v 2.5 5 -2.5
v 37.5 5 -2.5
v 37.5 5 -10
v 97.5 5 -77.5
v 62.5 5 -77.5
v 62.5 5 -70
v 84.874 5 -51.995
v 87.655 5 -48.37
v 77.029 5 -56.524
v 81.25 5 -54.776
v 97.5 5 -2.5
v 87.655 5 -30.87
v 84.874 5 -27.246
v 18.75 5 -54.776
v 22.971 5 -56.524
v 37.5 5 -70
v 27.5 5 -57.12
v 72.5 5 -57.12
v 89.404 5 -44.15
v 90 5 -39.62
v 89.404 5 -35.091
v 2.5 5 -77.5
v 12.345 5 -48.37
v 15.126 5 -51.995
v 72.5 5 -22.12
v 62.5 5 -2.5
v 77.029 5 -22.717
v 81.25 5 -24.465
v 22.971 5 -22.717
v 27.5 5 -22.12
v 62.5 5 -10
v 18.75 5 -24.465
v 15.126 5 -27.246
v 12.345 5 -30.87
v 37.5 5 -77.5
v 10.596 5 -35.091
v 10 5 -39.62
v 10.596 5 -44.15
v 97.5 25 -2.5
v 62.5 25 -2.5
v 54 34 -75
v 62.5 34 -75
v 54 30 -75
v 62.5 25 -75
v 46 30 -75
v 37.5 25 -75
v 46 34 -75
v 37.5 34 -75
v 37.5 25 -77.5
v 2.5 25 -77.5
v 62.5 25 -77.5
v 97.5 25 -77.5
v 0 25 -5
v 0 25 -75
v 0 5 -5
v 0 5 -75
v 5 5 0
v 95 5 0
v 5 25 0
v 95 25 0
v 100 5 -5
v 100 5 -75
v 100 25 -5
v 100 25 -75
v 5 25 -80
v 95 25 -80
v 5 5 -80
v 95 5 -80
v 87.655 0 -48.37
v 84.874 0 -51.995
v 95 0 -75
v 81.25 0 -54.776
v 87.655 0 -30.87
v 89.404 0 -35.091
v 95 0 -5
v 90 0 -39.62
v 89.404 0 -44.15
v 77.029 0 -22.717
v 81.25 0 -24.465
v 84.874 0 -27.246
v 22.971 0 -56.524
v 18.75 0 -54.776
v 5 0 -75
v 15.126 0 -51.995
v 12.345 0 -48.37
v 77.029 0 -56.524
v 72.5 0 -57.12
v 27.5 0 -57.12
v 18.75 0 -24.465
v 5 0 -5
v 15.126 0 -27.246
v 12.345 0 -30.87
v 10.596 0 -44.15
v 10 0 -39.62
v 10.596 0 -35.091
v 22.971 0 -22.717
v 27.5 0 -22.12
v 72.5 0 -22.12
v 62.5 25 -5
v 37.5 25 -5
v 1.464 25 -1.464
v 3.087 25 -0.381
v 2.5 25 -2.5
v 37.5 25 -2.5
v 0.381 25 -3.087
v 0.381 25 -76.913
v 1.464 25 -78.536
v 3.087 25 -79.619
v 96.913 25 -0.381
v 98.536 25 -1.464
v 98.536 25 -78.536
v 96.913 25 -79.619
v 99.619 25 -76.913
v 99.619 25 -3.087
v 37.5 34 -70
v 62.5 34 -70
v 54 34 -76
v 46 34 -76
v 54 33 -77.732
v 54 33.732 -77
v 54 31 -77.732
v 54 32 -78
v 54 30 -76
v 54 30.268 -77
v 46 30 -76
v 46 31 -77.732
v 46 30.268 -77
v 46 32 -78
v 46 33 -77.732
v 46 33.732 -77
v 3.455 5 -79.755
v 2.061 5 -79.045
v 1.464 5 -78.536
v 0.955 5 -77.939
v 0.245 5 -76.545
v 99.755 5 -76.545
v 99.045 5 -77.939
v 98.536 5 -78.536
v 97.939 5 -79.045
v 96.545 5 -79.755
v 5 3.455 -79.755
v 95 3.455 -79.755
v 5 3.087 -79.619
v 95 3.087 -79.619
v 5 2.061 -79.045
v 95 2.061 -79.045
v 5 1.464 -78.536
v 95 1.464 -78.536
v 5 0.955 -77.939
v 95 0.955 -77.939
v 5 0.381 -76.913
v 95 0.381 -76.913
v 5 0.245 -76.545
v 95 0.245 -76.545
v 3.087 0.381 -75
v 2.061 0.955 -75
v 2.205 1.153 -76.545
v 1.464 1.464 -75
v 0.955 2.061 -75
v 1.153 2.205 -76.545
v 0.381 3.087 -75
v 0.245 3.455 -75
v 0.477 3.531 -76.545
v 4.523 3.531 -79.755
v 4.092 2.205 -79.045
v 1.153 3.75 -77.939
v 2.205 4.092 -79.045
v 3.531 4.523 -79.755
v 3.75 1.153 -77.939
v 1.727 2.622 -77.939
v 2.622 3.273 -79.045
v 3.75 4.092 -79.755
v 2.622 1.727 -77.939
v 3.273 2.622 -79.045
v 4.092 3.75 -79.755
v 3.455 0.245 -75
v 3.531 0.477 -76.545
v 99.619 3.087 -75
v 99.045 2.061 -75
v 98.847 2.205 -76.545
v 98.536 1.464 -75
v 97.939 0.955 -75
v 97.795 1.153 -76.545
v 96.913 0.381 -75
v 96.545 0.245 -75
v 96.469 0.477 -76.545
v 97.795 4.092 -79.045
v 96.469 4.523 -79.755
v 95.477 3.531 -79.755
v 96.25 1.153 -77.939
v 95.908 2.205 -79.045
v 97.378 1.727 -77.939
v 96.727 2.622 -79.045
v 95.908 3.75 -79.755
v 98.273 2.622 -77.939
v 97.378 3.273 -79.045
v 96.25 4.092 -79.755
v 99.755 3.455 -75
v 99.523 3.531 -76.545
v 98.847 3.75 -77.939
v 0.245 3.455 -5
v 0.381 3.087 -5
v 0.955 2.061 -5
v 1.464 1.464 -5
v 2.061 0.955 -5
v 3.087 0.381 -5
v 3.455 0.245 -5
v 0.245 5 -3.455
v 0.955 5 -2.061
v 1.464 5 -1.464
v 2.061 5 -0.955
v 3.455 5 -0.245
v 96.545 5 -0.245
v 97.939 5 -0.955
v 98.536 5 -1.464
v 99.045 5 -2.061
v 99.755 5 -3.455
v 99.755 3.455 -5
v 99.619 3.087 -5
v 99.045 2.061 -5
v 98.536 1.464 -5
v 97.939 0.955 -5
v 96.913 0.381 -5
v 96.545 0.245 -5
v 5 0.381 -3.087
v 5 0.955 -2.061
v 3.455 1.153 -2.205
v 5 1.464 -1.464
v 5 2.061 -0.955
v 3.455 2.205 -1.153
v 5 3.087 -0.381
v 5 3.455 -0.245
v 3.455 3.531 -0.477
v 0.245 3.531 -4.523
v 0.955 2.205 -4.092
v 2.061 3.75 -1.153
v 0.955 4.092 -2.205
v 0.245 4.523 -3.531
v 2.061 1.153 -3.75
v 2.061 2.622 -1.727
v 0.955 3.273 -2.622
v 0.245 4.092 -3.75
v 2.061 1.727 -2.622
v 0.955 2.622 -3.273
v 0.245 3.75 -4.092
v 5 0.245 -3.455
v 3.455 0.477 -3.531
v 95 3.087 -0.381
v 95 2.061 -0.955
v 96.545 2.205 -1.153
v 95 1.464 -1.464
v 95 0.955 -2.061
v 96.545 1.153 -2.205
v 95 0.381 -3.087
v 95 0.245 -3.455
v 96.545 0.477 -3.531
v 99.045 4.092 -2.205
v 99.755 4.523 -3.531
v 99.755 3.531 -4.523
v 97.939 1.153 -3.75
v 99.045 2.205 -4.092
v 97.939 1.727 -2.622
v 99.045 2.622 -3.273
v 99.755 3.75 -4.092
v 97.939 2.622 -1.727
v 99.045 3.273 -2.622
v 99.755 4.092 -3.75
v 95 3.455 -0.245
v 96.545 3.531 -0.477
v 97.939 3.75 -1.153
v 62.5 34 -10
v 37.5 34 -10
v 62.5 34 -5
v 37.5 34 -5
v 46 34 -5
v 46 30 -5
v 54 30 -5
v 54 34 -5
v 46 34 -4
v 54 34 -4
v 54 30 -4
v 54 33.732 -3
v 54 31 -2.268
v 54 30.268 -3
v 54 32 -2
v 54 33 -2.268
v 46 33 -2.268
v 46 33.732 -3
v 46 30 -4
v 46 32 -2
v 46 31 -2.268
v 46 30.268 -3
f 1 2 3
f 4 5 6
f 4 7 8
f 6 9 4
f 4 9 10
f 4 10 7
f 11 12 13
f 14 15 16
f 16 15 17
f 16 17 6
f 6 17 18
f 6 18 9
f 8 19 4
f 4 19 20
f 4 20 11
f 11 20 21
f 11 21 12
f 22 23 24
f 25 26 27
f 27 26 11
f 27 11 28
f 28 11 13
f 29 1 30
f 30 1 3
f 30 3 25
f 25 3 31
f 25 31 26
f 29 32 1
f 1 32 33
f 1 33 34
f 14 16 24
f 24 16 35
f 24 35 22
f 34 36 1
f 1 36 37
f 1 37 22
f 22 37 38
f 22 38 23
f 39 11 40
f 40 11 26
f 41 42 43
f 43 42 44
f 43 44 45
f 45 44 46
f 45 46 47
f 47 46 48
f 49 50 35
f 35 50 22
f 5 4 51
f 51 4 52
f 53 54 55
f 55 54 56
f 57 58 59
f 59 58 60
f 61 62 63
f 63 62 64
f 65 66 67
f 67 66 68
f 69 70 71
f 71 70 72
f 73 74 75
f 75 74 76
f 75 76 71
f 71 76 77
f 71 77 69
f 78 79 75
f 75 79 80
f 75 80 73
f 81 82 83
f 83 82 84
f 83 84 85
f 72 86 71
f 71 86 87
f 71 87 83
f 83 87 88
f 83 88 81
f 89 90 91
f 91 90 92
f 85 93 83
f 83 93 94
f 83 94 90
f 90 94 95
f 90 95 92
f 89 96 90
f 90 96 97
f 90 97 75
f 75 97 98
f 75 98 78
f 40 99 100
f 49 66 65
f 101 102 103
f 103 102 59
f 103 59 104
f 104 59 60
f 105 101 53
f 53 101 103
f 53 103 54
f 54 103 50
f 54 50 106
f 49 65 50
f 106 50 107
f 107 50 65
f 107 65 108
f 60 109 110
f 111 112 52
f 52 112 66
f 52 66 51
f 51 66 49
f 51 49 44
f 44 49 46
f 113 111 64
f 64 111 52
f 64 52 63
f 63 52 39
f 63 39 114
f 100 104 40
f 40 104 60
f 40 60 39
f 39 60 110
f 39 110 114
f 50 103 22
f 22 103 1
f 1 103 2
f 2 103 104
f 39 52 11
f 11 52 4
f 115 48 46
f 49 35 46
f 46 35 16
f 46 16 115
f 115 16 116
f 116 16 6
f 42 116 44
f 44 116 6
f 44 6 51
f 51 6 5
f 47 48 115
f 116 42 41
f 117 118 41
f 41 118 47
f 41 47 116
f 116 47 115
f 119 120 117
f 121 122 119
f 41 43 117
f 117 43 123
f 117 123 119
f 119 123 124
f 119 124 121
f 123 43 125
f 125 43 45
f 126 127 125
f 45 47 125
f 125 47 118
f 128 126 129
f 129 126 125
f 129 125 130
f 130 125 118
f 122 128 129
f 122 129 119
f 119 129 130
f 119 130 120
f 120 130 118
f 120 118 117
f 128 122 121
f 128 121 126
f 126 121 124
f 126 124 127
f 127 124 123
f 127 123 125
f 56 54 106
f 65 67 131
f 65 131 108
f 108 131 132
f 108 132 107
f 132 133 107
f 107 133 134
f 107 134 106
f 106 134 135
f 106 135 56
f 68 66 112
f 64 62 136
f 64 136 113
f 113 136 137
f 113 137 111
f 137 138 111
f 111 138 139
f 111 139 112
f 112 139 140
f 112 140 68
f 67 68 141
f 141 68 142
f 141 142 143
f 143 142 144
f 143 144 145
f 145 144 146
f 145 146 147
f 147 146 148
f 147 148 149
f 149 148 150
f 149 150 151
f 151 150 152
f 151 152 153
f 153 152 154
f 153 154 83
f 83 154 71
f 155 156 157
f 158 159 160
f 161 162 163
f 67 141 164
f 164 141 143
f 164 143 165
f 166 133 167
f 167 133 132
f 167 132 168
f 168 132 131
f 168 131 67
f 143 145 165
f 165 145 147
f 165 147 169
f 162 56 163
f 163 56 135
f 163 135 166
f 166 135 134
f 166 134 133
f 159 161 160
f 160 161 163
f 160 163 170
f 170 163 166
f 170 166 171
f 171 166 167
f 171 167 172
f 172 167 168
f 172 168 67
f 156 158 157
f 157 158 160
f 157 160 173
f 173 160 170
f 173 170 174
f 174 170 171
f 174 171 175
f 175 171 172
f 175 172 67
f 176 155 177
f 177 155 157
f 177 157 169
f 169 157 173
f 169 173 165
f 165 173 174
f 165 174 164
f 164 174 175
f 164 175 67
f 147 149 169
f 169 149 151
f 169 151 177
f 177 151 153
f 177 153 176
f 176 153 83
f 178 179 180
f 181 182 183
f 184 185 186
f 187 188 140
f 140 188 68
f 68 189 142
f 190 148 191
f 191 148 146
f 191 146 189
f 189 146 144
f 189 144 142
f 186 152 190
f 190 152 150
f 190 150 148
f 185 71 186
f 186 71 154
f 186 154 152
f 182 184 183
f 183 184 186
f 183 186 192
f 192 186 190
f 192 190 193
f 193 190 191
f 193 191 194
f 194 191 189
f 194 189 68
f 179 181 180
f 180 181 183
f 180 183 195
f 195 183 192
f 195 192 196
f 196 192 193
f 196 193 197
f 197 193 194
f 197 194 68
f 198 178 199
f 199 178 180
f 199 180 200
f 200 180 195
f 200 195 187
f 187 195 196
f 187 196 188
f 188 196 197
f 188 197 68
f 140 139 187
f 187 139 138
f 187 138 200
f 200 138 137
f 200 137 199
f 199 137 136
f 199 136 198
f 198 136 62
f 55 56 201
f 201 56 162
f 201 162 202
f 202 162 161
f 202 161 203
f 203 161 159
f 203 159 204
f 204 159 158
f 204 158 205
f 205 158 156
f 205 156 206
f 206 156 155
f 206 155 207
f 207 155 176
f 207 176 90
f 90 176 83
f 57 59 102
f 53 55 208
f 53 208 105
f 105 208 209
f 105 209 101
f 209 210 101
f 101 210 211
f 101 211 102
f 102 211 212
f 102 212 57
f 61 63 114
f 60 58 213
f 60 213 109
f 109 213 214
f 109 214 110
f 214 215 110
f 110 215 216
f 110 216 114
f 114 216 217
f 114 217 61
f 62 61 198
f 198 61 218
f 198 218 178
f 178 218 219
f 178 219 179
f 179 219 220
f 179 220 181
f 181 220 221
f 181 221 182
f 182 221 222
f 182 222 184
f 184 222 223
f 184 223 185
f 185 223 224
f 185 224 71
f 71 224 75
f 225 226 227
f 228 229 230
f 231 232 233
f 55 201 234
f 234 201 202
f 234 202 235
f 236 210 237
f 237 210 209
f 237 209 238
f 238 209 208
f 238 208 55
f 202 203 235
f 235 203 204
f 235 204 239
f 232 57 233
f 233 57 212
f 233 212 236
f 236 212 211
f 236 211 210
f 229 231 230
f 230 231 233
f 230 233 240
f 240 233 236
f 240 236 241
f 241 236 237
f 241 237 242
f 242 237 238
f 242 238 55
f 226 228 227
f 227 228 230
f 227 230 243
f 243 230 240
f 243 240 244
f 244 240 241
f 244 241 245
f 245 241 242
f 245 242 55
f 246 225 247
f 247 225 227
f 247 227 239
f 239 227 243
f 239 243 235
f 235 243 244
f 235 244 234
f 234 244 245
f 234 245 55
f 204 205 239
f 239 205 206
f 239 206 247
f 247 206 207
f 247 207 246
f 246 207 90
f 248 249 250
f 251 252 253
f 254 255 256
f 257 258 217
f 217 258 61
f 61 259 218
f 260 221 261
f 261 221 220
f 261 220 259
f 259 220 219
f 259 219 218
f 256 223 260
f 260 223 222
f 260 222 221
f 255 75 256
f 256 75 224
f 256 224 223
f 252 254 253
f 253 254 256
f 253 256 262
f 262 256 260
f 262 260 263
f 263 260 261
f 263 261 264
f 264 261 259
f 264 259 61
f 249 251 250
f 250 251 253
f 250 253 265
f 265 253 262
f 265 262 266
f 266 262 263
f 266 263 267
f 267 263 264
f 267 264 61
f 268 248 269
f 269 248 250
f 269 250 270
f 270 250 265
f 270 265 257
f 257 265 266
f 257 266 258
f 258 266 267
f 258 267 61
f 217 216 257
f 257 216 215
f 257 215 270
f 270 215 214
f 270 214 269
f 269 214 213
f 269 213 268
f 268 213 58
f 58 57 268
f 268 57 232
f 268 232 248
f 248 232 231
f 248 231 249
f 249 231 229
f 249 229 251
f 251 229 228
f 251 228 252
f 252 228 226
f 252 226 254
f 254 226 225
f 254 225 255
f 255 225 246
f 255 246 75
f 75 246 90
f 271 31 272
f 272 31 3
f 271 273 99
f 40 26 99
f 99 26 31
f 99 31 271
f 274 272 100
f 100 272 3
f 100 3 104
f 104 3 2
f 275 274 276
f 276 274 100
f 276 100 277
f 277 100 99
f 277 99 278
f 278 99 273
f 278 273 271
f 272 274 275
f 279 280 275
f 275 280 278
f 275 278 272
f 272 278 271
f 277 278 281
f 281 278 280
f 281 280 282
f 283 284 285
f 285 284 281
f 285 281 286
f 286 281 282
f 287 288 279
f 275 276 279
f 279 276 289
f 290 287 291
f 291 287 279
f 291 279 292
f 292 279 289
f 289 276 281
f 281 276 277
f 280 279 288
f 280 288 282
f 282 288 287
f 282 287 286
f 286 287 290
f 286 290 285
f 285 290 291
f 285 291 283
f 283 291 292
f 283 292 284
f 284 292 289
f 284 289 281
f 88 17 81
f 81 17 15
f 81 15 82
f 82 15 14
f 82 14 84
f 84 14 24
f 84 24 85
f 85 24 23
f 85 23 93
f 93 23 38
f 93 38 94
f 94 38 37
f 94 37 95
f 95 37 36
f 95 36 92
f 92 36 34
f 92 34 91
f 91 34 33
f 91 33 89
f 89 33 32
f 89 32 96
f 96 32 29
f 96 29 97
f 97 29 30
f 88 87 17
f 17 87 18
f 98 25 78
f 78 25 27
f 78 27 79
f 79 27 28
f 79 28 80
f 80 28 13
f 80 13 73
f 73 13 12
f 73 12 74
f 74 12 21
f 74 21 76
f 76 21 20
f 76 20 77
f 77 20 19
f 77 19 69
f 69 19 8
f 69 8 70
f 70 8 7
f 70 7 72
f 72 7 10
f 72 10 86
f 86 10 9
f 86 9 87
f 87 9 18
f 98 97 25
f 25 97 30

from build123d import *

# Parameters (mm, degrees)
SKETCH1_W            = 100
SKETCH1_H            = 80
BOSS_EXTRUDE1_DEPTH  = 5
SKETCH2_W            = 100
SKETCH2_H            = 80
SKETCH2_W_2          = 95
SKETCH2_H_2          = 75
BOSS_EXTRUDE2_DEPTH  = 20
SKETCH3_W            = 25
SKETCH3_H            = 7.5
BOSS_EXTRUDE3_DEPTH  = 20
SKETCH4_W            = 25
SKETCH4_H            = 5
BOSS_EXTRUDE4_DEPTH  = 9
SKETCH5_W            = 8
SKETCH5_H            = 4
BOSS_EXTRUDE5_DEPTH  = 3
FILLET1_R            = 2
FILLET2_R            = 5
FILLET1_OF_MIRROR2_R = 2
CUT_EXTRUDE1_DEPTH   = 132.304988481


with BuildPart() as part:
    # Sketch1 → Boss-Extrude1 (new body)
    with BuildSketch(Plane(origin=(0, 0, 0), x_dir=(1, 0, 0), z_dir=(0, 1, 0))):
        with Locations((50, 40)):
            Rectangle(SKETCH1_W, SKETCH1_H)
    extrude(amount=BOSS_EXTRUDE1_DEPTH)

    # Sketch2 → Boss-Extrude2 (add)
    with BuildSketch(Plane(origin=(0, 5, 0), x_dir=(1, 0, 0), z_dir=(0, 1, 0))):
        with Locations((50, 40)):
            Rectangle(SKETCH2_W, SKETCH2_H)
        with Locations((50, 40)):
            Rectangle(SKETCH2_W_2, SKETCH2_H_2, mode=Mode.SUBTRACT)
    extrude(amount=BOSS_EXTRUDE2_DEPTH)

    # Sketch3 → Boss-Extrude3 (add)
    with BuildSketch(Plane(origin=(0, 5, 0), x_dir=(1, 0, 0), z_dir=(0, 1, 0))):
        with Locations((50, 73.75)):
            Rectangle(SKETCH3_W, SKETCH3_H)
    boss_extrude3 = extrude(amount=BOSS_EXTRUDE3_DEPTH)

    # Sketch4 → Boss-Extrude4 (add)
    with BuildSketch(Plane(origin=(0, 25, 0), x_dir=(1, 0, 0), z_dir=(0, 1, 0))):
        with Locations((50, 72.5)):
            Rectangle(SKETCH4_W, SKETCH4_H)
    boss_extrude4 = extrude(amount=BOSS_EXTRUDE4_DEPTH)

    # Sketch5 → Boss-Extrude5 (add)
    with BuildSketch(Plane(origin=(0, 0, -75), x_dir=(-1, 0, 0), z_dir=(0, 0, -1))):
        with Locations((-50, 32)):
            Rectangle(SKETCH5_W, SKETCH5_H)
    boss_extrude5 = extrude(amount=BOSS_EXTRUDE5_DEPTH)

    # Fillet1
    fillet1_edges = [part.edges().sort_by_distance(p)[0] for p in [
        (50, 30, -78),
        (50, 34, -78),
    ]]
    fillet(fillet1_edges, radius=FILLET1_R - 0.0001)  # a hair under: the kernel refuses the full size

    # Fillet2
    fillet2_edges = [part.edges().sort_by_distance(p)[0] for p in [
        (50, 0, -80),
        (100, 0, -40),
        (50, 0, 0),
        (0, 0, -40),
        (0, 12.5, -80),
        (100, 12.5, -80),
        (100, 12.5, 0),
        (0, 12.5, 0),
    ]]
    fillet(fillet2_edges, radius=FILLET2_R)

    # Mirror2: Boss-Extrude3, Boss-Extrude4, Boss-Extrude5 across plane
    add(boss_extrude3.mirror(Plane.XY.offset(-40)))
    add(boss_extrude4.mirror(Plane.XY.offset(-40)))
    add(boss_extrude5.mirror(Plane.XY.offset(-40)))

    # Fillet1 of Mirror2
    fillet1_of_mirror2_edges = [part.edges().sort_by_distance(p)[0] for p in [
        (50, 30, -2),
        (50, 34, -2),
    ]]
    fillet(fillet1_of_mirror2_edges, radius=FILLET1_OF_MIRROR2_R - 0.0001)  # a hair under: the kernel refuses the full size

    # Sketch6 → Cut-Extrude1 (cut, through all)
    with BuildSketch(Plane(origin=(0, 5, 0), x_dir=(1, 0, 0), z_dir=(0, 1, 0))):
        with BuildLine():
            Line((27.5, 57.120387913), (72.5, 57.120387913))
            ThreePointArc((72.5, 57.120387913), (90, 39.620387913), (72.5, 22.120387913))
            Line((72.5, 22.120387913), (27.5, 22.120387913))
            ThreePointArc((27.5, 22.120387913), (10.000000977, 39.620387913), (27.5, 57.120387913))
        make_face()
    extrude(amount=-CUT_EXTRUDE1_DEPTH, mode=Mode.SUBTRACT)


solid = part.part
